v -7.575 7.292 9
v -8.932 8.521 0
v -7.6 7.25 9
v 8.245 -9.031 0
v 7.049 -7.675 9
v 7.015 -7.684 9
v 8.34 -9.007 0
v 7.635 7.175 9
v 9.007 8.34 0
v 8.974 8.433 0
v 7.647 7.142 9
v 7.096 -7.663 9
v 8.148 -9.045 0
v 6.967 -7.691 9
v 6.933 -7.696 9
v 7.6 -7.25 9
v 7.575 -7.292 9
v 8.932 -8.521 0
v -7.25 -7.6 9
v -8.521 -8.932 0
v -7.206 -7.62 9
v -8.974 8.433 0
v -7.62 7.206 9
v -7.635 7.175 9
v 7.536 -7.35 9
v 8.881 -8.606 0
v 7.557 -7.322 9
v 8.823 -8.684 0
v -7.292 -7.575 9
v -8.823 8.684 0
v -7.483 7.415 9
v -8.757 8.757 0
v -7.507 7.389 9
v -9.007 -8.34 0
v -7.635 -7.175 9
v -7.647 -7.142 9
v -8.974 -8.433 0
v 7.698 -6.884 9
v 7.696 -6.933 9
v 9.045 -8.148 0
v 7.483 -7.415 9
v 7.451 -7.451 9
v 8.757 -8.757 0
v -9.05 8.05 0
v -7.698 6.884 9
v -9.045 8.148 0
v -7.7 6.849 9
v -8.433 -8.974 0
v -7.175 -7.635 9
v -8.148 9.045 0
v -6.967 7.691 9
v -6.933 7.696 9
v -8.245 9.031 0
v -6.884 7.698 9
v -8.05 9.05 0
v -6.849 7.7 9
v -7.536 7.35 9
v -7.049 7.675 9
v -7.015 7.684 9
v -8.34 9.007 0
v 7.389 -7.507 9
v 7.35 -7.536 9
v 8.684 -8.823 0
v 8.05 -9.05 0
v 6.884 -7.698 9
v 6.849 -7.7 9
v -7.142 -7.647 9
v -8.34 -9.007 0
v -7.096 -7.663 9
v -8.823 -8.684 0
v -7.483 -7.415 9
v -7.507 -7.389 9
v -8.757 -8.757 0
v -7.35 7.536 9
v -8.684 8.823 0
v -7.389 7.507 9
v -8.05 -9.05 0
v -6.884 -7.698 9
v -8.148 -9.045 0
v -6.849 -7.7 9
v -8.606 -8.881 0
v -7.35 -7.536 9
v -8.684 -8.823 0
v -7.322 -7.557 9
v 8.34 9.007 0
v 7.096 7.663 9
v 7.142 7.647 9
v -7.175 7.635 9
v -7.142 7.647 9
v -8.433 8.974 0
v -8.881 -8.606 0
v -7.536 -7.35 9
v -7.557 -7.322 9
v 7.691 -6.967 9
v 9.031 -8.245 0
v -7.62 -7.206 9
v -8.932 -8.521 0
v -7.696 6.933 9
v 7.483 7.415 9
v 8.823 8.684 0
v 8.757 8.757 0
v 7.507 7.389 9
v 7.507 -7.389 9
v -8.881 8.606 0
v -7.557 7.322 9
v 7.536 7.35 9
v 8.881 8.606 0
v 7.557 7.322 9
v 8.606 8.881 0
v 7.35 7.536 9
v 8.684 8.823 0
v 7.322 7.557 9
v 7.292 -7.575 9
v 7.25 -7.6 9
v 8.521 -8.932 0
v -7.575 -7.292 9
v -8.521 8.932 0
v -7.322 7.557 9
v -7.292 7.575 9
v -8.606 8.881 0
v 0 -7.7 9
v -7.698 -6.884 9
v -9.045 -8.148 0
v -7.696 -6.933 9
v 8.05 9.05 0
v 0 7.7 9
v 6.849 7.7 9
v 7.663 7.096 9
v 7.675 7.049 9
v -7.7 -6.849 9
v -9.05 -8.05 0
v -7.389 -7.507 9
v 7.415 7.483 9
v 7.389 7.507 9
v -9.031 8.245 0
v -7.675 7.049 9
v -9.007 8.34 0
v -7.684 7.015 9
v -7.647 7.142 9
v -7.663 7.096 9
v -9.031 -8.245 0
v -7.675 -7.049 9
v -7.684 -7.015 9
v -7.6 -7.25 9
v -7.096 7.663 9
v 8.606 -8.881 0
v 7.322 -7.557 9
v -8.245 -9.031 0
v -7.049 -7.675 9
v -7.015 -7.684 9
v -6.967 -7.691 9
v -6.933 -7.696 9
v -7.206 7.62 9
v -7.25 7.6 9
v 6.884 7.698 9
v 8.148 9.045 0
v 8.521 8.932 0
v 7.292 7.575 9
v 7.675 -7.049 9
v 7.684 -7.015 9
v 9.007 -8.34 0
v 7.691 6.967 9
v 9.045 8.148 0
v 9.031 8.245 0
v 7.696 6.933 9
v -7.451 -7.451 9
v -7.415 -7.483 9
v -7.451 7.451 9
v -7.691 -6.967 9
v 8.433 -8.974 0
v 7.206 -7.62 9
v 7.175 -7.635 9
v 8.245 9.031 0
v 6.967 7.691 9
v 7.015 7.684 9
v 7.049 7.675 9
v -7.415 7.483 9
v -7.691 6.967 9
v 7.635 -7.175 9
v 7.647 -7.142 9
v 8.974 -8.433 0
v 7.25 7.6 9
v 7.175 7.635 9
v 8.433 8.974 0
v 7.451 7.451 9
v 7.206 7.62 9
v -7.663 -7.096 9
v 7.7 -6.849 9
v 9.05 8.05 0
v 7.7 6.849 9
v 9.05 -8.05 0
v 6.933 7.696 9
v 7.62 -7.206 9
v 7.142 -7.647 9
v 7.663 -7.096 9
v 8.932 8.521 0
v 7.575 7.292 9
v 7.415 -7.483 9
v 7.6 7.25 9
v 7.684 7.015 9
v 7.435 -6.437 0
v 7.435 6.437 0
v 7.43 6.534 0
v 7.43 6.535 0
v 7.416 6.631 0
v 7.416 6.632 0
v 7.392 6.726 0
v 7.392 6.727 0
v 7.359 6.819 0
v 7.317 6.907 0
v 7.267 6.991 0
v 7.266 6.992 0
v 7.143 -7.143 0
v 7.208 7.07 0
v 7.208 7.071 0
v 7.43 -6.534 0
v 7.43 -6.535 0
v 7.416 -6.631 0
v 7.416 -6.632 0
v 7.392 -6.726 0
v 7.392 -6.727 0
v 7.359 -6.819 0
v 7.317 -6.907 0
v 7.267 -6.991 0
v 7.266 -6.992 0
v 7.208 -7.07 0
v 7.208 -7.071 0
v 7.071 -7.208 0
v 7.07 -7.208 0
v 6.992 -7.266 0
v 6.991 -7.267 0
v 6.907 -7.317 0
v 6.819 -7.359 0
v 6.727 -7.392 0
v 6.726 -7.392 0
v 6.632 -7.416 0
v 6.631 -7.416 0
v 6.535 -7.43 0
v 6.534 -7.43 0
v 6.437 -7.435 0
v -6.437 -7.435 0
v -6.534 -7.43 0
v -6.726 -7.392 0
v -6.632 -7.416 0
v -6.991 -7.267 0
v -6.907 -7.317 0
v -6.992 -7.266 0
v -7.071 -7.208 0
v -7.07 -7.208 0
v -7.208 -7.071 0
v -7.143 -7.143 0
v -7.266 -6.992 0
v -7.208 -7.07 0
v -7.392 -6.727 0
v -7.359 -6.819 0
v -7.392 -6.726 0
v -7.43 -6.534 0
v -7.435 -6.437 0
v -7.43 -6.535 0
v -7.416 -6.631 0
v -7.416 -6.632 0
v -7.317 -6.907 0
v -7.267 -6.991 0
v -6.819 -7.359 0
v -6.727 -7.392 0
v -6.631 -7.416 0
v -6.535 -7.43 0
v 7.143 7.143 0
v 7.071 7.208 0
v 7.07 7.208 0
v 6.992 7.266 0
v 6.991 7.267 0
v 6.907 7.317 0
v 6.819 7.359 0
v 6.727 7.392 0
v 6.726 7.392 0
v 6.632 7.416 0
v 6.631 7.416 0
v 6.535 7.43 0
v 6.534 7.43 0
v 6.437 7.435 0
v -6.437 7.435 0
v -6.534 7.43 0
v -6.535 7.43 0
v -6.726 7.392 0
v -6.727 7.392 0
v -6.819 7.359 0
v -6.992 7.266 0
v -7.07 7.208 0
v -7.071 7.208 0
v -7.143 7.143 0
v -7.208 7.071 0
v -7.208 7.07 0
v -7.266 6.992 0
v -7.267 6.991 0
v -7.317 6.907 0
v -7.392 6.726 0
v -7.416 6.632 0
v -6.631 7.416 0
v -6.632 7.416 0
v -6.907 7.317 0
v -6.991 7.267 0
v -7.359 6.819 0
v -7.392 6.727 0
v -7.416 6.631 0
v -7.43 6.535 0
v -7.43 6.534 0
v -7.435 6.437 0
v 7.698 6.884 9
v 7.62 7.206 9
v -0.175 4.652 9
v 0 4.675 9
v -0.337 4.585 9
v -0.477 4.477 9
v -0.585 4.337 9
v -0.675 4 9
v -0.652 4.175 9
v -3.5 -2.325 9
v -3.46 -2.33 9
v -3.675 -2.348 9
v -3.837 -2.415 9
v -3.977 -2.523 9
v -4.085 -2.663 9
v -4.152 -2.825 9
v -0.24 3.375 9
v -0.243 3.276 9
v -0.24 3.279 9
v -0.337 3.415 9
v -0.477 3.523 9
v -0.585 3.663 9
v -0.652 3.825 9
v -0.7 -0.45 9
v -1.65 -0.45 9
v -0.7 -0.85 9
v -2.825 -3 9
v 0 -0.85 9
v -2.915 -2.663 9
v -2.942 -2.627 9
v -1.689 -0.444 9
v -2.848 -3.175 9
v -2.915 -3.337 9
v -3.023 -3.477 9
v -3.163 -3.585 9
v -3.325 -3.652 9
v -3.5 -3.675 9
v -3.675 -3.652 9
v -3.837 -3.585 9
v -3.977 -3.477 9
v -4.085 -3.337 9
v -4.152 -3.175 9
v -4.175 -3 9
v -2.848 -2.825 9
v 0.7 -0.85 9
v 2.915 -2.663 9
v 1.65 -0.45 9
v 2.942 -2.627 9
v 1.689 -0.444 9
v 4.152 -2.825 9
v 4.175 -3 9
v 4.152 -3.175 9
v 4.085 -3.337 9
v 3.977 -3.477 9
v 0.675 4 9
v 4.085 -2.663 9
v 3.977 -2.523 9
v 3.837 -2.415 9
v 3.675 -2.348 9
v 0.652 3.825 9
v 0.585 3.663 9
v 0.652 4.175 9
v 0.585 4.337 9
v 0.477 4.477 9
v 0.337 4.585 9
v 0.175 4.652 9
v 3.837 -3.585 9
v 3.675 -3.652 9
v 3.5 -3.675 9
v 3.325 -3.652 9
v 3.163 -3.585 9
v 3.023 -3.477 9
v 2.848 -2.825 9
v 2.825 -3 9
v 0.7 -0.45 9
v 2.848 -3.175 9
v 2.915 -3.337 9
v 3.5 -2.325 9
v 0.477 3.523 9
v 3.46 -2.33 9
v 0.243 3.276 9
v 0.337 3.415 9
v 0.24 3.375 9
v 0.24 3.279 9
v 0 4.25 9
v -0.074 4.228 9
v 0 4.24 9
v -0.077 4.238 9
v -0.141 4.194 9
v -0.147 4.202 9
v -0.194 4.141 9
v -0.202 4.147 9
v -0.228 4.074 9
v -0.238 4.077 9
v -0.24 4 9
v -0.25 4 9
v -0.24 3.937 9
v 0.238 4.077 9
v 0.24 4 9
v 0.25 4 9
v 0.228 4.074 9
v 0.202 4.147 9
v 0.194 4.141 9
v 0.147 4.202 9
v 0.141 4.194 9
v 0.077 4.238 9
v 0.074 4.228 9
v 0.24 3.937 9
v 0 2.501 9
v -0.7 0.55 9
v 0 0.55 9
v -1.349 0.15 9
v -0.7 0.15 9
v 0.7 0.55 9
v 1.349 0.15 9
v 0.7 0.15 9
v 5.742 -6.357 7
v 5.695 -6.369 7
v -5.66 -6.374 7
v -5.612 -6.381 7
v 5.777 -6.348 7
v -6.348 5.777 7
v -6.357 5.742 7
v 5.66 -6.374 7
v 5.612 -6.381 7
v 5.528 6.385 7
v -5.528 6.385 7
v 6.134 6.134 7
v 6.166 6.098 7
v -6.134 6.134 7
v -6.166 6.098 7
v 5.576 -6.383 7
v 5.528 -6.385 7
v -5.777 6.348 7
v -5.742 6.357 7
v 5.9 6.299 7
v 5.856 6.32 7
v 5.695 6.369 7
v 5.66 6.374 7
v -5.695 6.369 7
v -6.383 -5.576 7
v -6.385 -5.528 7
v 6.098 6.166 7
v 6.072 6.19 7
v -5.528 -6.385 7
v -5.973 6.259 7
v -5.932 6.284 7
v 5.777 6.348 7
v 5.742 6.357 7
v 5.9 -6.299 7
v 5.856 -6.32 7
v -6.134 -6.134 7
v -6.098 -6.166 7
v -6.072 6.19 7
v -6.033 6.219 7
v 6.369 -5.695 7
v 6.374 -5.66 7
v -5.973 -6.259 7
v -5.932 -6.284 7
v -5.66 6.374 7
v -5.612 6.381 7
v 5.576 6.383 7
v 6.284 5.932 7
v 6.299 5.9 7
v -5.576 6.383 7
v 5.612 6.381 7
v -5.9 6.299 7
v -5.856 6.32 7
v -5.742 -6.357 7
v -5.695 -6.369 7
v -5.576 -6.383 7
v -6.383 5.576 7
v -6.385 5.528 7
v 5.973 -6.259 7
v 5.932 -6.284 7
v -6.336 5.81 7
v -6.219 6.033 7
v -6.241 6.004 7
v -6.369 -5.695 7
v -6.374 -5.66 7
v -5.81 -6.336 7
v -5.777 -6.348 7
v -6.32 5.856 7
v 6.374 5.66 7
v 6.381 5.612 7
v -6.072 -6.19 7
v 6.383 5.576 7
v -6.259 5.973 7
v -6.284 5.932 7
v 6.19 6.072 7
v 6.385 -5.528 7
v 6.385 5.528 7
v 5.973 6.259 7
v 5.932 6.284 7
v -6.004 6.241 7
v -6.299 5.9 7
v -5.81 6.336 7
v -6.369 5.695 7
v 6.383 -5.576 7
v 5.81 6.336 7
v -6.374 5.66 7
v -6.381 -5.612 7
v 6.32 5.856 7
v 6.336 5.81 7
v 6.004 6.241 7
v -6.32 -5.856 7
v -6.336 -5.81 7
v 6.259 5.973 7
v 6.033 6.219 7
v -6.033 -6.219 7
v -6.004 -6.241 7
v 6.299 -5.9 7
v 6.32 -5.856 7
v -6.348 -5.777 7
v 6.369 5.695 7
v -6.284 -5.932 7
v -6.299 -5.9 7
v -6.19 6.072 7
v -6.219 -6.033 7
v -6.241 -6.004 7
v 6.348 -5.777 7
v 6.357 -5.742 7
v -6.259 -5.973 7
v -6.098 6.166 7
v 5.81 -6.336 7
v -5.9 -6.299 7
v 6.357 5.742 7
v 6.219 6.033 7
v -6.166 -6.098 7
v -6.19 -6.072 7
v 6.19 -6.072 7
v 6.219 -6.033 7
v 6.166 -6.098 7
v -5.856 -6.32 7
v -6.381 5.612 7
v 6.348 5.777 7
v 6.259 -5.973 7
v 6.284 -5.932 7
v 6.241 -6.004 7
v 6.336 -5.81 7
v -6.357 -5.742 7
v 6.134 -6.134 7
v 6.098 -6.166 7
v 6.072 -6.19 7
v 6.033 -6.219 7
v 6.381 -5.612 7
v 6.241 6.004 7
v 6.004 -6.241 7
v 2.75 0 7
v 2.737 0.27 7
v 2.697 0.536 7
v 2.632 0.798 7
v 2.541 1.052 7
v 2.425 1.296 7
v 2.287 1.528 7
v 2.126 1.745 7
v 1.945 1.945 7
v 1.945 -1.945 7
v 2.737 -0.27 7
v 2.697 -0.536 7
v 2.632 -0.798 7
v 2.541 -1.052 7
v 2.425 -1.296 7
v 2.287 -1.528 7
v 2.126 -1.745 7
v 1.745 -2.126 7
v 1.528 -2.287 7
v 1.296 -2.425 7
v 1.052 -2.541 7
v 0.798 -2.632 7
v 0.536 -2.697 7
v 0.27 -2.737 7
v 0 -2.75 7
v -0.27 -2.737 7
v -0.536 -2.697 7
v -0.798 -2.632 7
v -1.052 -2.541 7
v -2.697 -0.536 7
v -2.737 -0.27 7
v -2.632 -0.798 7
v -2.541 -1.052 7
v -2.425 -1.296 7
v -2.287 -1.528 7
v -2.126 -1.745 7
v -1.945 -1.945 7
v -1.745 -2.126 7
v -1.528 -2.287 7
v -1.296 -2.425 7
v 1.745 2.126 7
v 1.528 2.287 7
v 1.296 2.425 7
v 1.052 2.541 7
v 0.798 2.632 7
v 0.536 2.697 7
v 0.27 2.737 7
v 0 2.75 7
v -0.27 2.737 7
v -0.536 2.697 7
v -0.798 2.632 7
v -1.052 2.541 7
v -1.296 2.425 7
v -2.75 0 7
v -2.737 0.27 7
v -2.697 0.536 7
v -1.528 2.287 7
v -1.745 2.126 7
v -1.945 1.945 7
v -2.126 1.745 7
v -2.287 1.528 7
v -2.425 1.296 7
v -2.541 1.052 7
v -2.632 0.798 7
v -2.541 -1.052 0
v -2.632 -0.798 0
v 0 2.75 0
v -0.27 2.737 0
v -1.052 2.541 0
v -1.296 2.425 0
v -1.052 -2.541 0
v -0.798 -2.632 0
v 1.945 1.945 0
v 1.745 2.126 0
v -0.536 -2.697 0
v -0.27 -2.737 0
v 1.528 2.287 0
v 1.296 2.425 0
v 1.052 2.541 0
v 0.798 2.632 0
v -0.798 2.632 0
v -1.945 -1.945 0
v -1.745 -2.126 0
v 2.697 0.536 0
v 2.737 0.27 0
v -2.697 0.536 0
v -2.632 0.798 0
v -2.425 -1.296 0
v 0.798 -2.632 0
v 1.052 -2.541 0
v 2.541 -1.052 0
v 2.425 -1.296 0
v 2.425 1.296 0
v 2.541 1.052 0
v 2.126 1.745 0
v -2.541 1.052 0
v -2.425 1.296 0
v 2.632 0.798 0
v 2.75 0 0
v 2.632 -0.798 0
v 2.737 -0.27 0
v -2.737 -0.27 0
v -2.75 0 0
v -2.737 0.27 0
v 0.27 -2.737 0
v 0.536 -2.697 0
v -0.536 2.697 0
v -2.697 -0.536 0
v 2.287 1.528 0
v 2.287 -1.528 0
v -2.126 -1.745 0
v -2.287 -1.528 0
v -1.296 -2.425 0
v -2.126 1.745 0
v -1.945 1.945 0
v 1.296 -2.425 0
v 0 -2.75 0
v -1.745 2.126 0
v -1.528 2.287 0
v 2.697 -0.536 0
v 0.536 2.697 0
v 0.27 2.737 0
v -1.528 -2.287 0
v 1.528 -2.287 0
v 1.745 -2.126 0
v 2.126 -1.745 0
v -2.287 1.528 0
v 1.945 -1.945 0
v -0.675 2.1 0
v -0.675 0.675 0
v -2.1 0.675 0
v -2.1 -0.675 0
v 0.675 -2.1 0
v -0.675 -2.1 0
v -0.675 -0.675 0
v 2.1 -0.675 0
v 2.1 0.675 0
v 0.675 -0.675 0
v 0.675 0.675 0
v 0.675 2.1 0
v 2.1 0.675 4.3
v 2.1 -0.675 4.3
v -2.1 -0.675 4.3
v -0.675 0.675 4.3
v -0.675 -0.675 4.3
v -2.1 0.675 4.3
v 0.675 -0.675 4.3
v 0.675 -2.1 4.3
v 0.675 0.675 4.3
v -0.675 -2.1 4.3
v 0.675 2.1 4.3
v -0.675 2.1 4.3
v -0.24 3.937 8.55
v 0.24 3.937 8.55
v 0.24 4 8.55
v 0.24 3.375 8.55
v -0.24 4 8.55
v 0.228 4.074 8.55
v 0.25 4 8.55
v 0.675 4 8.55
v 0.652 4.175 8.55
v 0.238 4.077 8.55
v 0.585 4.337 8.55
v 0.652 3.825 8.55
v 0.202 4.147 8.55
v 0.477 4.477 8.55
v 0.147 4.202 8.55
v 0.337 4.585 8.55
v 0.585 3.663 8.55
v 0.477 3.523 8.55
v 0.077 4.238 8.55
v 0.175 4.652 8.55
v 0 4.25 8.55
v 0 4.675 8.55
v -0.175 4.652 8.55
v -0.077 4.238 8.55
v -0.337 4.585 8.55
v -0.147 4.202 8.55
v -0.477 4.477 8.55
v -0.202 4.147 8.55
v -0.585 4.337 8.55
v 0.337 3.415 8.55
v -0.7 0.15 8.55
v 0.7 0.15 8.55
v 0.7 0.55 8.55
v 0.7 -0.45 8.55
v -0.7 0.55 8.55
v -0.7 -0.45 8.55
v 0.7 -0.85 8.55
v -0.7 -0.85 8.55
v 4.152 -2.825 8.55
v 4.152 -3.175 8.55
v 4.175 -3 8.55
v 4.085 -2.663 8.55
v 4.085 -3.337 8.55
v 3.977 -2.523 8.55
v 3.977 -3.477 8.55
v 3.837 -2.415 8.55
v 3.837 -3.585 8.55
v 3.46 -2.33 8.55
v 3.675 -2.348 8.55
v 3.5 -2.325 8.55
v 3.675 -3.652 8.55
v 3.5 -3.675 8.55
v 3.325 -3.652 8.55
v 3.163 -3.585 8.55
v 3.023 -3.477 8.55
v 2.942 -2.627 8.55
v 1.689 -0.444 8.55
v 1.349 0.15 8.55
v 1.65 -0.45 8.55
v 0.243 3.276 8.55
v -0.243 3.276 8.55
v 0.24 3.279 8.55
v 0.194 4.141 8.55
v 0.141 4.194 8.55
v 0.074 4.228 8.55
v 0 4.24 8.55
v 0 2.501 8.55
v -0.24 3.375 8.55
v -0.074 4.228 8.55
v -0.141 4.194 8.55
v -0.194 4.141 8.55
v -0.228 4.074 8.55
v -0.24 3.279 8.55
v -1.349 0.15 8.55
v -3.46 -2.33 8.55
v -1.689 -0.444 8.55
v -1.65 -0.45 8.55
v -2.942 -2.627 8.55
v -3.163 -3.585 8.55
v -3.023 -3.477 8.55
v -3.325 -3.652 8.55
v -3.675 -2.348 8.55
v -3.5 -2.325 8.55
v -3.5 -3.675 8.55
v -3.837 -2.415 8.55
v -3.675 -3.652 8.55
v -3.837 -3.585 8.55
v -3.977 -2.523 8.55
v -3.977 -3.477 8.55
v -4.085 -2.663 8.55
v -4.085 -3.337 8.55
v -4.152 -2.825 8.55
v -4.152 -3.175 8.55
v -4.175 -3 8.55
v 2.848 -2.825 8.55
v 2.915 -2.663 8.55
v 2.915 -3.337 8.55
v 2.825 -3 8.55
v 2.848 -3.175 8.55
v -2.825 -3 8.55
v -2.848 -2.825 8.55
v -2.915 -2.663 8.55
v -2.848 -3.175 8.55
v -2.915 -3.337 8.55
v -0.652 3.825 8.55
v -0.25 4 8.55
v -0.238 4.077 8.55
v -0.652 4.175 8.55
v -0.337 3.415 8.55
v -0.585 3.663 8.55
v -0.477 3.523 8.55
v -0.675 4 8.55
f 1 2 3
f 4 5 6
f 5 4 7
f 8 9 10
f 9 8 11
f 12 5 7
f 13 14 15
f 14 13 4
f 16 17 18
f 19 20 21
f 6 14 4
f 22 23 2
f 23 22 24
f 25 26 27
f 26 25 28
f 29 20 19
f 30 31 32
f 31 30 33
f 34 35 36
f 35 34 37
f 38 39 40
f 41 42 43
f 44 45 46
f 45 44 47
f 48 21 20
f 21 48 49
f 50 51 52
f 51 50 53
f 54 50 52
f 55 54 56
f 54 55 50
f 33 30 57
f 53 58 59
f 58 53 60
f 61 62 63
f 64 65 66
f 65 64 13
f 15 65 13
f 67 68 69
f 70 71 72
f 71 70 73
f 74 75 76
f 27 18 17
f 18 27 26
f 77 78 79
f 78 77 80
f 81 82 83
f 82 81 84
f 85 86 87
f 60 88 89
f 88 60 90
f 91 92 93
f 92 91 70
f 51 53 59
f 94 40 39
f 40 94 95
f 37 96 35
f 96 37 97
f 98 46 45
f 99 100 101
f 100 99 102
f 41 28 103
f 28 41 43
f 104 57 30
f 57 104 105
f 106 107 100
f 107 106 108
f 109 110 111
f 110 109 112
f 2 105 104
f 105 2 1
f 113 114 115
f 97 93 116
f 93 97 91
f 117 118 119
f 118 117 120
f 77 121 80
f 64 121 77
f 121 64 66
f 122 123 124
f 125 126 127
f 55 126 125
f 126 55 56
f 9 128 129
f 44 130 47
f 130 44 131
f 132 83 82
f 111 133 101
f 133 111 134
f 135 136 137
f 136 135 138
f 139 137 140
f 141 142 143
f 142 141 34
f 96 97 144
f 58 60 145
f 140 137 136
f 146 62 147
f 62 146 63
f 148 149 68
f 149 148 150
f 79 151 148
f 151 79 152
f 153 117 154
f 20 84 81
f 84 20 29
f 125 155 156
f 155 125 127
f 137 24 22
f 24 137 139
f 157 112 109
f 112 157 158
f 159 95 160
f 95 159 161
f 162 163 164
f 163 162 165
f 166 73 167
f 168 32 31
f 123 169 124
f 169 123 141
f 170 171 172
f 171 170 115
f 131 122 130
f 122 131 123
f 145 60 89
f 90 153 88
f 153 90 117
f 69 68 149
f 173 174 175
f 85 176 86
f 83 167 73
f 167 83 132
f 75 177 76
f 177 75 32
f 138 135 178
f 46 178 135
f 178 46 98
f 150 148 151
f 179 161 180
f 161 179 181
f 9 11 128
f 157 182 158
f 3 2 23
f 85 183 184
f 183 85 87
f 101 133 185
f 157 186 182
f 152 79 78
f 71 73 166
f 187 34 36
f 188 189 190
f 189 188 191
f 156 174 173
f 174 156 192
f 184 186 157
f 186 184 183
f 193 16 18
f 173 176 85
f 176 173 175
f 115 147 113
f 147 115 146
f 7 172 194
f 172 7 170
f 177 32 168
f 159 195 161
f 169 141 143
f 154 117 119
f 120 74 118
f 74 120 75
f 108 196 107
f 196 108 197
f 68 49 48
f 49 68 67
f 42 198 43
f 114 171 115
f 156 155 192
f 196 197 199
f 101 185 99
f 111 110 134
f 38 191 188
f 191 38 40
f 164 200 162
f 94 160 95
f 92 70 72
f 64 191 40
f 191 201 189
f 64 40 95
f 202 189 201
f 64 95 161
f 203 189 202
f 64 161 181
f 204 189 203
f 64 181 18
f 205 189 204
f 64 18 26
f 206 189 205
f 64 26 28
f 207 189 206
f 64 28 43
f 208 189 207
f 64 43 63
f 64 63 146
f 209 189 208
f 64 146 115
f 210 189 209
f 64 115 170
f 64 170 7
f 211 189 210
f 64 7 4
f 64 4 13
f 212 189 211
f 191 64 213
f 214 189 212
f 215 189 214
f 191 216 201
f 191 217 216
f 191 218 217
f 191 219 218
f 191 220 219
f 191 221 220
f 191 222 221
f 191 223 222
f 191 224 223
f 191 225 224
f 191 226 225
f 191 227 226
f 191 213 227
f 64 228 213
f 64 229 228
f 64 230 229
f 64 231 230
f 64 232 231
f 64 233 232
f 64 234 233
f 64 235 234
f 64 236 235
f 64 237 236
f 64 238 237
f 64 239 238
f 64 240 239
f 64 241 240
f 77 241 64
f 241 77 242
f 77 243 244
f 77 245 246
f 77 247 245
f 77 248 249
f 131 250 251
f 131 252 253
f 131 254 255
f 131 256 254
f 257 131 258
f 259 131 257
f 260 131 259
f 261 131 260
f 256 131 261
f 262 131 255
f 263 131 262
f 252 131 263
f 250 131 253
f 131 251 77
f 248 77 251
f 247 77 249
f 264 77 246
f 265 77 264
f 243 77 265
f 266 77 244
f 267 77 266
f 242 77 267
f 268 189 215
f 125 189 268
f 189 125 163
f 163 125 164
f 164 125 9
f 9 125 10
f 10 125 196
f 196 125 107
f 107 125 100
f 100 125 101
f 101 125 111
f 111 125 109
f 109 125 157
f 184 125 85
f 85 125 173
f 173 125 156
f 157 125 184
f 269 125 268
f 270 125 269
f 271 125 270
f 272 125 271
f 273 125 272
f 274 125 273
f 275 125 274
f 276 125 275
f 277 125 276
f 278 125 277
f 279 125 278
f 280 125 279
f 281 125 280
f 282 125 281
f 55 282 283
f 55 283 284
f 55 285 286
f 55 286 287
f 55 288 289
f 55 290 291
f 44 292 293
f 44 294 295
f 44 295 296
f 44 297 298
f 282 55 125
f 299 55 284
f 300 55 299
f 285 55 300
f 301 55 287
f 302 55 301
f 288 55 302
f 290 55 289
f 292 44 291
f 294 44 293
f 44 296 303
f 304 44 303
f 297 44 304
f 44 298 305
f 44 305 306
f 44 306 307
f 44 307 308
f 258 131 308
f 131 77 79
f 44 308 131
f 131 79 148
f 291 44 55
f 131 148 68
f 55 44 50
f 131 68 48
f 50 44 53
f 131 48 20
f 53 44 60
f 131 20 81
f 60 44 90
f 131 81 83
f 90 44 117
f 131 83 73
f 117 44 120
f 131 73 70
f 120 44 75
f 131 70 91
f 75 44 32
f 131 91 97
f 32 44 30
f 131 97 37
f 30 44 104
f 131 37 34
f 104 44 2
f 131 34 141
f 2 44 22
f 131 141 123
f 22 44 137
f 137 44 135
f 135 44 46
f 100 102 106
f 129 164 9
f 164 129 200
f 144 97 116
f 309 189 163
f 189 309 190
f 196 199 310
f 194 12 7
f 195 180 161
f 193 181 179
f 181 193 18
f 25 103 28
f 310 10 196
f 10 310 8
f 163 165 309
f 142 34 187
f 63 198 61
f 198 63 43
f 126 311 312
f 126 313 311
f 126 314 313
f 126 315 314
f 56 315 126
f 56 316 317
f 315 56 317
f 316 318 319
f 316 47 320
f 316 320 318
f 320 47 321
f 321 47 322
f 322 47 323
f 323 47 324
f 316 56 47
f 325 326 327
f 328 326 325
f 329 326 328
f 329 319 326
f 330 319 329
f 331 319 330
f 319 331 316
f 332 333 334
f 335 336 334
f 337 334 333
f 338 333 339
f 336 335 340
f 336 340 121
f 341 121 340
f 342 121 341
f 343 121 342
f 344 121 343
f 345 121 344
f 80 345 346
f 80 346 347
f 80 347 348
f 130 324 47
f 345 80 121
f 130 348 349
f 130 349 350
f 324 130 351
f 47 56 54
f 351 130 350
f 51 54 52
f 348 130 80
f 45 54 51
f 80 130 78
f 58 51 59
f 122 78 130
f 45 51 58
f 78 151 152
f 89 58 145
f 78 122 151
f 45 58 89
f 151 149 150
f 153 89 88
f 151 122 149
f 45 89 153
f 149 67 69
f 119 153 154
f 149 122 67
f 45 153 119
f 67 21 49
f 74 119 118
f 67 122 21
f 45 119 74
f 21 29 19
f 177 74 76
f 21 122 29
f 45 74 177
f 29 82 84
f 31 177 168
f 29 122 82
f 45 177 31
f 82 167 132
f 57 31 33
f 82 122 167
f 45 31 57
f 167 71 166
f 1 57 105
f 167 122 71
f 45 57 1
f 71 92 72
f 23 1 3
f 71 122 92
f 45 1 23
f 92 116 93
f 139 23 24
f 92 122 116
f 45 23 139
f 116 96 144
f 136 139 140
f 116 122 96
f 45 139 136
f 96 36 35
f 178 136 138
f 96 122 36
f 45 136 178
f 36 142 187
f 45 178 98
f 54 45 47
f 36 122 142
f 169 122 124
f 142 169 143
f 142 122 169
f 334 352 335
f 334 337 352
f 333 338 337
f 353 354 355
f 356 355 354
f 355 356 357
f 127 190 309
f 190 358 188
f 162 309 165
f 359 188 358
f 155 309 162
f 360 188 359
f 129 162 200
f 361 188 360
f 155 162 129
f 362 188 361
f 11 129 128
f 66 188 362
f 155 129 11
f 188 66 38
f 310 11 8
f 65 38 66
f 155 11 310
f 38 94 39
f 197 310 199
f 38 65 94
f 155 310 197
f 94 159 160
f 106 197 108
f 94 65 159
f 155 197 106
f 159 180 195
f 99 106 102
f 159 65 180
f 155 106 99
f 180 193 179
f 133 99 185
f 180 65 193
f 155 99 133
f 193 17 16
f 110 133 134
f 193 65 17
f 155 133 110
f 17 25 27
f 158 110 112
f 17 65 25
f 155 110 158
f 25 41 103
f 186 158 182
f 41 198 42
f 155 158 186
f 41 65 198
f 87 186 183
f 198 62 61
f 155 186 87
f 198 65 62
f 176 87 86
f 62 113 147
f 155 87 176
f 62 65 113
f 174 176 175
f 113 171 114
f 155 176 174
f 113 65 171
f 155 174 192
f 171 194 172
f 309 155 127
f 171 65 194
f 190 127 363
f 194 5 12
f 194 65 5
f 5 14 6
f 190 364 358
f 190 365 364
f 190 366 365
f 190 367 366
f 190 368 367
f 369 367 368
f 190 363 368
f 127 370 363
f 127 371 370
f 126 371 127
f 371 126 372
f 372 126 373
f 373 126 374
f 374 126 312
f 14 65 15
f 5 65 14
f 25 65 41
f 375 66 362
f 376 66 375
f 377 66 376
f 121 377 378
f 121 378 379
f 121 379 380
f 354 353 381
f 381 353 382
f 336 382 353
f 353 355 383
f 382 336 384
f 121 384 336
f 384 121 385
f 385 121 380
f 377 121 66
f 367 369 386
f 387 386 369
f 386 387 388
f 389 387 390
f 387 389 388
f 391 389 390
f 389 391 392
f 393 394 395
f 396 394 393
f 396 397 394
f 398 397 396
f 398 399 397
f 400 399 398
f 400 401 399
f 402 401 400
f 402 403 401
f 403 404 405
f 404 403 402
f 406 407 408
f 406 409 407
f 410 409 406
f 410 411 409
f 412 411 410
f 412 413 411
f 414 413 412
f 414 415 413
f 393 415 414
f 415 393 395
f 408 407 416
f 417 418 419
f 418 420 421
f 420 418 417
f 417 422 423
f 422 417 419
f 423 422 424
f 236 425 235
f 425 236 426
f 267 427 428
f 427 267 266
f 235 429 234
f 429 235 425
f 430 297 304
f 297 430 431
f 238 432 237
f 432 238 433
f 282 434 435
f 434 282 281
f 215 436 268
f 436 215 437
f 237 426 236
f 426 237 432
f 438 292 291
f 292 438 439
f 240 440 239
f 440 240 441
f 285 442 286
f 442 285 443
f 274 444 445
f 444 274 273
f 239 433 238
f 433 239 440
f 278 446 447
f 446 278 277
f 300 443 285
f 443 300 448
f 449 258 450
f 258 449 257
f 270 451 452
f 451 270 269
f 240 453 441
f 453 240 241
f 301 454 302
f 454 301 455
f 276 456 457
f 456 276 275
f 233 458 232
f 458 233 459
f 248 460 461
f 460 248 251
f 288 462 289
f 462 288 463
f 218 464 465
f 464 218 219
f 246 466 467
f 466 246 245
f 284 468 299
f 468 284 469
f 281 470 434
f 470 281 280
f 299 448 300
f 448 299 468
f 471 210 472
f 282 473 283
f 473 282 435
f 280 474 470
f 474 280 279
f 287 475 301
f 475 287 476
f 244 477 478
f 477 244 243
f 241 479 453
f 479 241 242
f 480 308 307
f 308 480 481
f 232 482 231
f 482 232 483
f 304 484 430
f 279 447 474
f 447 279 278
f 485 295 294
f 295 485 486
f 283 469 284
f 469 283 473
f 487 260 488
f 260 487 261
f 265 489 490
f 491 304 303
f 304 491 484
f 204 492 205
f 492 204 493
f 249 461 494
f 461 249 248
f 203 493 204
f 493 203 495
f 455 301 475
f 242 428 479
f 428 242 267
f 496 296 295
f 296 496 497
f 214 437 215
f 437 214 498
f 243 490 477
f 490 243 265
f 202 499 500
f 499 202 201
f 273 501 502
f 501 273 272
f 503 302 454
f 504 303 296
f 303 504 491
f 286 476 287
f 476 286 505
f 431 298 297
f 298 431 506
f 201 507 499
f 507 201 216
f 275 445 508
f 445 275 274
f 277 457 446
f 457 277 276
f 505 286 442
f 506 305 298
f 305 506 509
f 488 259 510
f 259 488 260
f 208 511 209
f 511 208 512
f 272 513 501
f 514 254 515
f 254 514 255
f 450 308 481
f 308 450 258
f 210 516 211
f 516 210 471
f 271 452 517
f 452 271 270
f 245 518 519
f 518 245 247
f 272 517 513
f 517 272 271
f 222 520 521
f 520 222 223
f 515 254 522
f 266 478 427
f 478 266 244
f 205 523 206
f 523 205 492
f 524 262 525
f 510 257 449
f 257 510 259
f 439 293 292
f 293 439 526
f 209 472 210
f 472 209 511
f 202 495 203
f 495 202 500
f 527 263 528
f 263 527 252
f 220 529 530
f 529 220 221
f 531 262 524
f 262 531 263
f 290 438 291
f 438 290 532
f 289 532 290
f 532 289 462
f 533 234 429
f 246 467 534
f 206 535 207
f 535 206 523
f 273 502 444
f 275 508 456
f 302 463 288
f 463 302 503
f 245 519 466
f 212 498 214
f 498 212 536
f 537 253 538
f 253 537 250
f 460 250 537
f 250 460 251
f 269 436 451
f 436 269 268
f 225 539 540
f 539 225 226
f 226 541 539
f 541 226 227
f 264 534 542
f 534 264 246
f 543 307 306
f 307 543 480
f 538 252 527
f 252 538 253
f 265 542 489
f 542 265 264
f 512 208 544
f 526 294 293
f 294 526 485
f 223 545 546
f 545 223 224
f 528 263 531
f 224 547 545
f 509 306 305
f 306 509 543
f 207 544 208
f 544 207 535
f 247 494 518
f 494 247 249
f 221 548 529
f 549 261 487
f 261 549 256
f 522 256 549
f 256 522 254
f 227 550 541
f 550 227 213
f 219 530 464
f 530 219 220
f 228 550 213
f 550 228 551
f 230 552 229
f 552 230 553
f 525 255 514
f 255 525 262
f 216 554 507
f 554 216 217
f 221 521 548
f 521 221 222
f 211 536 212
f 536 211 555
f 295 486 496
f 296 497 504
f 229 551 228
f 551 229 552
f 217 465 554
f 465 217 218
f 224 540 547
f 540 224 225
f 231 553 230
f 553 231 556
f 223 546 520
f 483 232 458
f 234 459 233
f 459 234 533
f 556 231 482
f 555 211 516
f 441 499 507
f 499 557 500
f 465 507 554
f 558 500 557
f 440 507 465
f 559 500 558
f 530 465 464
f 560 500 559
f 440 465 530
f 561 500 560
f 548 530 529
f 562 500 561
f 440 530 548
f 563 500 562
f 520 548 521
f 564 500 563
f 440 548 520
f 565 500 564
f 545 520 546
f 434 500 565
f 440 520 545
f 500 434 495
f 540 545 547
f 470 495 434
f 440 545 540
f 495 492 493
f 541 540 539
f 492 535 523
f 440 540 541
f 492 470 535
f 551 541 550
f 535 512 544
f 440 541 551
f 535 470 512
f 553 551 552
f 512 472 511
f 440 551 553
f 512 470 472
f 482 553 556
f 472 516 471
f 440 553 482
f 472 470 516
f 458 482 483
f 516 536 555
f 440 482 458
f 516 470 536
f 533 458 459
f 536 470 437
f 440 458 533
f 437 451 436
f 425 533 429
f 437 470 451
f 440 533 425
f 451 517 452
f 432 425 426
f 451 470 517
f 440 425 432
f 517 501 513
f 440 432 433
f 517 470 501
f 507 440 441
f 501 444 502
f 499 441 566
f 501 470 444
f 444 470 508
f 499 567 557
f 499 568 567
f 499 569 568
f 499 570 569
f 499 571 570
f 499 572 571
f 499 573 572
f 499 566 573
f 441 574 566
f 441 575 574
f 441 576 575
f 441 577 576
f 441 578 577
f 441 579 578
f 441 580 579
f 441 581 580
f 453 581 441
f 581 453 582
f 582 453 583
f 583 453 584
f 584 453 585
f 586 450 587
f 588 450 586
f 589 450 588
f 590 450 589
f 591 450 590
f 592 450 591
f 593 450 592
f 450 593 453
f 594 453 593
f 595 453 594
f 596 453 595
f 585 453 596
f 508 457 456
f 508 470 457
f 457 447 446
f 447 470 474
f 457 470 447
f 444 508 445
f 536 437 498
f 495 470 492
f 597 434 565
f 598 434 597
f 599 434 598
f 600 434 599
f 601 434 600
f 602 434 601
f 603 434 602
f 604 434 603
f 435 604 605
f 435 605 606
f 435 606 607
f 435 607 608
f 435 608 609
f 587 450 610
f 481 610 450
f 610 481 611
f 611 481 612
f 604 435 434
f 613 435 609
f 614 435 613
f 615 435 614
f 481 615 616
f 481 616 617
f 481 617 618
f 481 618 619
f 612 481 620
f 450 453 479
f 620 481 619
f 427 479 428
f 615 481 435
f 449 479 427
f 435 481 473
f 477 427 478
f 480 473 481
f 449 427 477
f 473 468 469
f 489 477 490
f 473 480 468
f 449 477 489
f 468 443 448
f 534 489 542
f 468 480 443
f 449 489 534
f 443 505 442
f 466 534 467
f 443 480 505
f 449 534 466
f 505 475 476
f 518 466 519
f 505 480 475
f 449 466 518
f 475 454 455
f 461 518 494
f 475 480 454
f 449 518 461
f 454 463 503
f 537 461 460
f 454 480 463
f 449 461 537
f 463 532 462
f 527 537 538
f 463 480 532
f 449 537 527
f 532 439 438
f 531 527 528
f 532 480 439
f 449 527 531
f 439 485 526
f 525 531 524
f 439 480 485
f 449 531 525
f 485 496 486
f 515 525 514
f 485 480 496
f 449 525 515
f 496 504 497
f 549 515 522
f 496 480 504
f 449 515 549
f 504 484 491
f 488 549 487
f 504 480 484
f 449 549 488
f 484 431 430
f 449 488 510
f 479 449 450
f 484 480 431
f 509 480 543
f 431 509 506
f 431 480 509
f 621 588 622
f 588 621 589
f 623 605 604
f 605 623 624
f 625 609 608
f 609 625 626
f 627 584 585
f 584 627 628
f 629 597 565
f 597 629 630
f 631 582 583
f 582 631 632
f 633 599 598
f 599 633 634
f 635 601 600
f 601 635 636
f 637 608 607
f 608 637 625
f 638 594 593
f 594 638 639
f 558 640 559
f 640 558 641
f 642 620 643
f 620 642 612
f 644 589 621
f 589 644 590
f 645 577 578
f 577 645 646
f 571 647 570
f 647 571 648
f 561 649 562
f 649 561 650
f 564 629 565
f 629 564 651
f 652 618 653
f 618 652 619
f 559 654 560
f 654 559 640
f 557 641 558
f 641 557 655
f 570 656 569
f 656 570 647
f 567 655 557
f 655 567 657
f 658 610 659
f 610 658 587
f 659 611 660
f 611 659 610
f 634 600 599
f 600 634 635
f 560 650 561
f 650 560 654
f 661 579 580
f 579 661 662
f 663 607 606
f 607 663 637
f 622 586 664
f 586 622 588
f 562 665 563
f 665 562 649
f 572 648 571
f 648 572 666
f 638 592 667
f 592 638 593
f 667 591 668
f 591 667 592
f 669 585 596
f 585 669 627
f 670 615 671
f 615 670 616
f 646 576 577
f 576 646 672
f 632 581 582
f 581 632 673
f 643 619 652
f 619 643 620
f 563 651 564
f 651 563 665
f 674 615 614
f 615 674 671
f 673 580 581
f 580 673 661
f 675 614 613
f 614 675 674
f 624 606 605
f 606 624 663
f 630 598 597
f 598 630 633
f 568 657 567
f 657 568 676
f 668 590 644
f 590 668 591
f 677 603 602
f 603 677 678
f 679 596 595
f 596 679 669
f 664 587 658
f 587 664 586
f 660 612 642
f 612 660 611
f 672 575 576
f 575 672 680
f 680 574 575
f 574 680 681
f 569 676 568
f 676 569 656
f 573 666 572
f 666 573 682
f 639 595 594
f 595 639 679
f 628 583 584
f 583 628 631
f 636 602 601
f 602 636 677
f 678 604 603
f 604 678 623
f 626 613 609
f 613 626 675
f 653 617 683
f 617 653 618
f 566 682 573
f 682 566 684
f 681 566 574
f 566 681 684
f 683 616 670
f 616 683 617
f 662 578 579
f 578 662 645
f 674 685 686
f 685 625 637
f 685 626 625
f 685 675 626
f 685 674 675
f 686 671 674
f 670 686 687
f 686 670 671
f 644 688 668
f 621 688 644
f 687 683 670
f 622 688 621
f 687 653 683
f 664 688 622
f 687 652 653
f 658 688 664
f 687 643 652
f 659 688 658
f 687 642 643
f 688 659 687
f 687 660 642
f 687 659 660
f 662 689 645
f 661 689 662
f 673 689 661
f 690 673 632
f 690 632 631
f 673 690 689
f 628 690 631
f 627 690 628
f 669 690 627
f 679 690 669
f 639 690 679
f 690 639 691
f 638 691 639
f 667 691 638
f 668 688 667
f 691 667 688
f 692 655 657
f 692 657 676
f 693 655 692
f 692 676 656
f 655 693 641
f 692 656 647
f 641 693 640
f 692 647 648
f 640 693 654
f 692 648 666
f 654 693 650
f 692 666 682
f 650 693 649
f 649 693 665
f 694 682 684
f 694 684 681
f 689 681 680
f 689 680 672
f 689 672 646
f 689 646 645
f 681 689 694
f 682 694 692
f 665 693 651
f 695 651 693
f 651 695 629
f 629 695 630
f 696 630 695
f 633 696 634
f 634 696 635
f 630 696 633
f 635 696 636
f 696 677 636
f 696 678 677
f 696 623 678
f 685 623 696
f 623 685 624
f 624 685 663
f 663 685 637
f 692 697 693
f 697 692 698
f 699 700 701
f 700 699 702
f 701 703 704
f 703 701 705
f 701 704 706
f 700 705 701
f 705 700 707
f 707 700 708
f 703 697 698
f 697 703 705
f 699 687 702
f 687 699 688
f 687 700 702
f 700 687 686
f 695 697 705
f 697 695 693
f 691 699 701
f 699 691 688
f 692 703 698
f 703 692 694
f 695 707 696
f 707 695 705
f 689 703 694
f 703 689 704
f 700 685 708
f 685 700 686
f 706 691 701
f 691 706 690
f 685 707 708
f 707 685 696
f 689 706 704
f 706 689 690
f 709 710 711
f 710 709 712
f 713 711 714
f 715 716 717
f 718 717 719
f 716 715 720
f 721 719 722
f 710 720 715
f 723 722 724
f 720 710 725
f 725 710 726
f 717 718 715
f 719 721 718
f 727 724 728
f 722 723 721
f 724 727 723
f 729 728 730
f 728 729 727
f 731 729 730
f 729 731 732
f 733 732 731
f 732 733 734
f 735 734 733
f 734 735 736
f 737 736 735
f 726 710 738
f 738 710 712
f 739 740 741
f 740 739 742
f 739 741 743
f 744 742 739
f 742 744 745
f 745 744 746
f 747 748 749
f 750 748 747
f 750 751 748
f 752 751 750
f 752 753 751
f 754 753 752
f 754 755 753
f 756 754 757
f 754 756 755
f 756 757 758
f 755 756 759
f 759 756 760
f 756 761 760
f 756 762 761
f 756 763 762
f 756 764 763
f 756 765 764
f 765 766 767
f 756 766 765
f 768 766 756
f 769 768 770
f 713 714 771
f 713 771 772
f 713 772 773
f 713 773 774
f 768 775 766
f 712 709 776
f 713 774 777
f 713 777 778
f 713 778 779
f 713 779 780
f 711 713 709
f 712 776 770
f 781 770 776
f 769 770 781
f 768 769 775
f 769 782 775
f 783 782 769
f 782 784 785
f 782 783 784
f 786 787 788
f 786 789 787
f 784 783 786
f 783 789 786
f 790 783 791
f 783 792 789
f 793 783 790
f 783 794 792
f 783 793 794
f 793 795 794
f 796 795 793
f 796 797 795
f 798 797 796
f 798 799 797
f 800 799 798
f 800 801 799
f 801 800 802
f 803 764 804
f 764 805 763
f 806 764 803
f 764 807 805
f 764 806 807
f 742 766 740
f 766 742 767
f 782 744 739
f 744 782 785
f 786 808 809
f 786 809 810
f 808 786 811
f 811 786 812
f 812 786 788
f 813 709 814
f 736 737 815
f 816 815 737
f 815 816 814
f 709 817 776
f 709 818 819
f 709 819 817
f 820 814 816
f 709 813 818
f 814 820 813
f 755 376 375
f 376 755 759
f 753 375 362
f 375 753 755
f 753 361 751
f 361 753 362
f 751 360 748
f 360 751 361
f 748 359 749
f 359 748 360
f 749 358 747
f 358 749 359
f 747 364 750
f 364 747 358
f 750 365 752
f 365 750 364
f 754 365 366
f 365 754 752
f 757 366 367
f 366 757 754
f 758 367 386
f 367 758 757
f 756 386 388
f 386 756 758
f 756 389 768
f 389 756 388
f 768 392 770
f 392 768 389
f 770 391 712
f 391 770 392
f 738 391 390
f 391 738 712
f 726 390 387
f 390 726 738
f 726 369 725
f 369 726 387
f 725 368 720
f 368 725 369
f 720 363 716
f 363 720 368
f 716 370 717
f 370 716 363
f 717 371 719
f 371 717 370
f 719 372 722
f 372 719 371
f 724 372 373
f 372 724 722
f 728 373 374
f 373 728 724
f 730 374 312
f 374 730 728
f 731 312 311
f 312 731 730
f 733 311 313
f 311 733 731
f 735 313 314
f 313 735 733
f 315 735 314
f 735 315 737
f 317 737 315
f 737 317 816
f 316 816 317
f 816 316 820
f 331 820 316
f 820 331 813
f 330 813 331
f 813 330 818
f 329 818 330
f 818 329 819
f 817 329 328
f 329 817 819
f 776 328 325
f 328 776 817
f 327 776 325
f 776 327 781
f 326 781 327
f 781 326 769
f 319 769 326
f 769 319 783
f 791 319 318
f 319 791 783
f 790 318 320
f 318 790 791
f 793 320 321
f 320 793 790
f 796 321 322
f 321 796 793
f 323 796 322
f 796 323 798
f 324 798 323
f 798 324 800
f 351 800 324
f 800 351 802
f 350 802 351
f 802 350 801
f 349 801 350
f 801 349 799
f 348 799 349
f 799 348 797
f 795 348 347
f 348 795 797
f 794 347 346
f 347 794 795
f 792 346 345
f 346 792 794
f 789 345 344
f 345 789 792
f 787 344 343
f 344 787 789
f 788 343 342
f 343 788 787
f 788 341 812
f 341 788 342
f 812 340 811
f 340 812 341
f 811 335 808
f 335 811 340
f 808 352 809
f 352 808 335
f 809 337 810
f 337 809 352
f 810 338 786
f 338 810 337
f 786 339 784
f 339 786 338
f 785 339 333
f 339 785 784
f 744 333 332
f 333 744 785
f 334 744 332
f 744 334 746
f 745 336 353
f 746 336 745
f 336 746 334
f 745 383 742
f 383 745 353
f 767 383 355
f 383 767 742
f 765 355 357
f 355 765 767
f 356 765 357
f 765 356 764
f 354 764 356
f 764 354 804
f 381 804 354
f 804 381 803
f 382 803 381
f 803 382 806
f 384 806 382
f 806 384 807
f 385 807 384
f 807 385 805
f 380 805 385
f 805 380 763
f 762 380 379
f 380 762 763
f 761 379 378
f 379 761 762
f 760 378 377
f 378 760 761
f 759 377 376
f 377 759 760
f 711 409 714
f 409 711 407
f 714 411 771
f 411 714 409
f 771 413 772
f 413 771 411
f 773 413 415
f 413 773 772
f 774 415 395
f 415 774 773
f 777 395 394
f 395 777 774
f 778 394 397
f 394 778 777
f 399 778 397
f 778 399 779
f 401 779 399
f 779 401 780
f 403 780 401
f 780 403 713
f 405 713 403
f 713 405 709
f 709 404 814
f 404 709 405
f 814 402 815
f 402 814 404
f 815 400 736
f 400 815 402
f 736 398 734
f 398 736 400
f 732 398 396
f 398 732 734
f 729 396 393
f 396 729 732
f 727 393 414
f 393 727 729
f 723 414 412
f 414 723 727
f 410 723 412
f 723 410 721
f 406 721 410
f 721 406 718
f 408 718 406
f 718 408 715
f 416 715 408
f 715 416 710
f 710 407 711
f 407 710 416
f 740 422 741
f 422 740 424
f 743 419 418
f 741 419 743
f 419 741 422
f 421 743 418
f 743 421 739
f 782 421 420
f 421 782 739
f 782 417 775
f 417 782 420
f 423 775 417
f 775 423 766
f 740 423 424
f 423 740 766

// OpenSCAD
/*
  FDM-friendly 1U keycap for Cherry MX compatible switches.

  Units: millimetres
  Default orientation: switch/stem opening faces down.
  Set `part` to "fit_test" before printing a complete cap for the first time.
*/

part = "keycap"; // [keycap, keyset, fit_test, pattern_2d, keymap_2d]
surface_pattern = "agentpad"; // [agentpad, task, refactor, test, none]
task_number = 1; // [1:6]

// Keycap envelope (1U key pitch is normally 19.05 mm).
bottom_width = 18.1;
bottom_depth = 18.1;
top_width = 15.4;
top_depth = 15.4;
front_height = 9.0;
back_height = 9.0;
corner_radius = 1.00;

// FDM shell. 1.20 mm is three lines with a 0.4 mm nozzle.
wall = 1.60;
roof = 2.00;

// Cherry MX cross socket. Increase clearance if the first fit is too tight.
stem_cross_length = 4.10;
stem_cross_thickness = 1.25;
stem_clearance = 0.05; // snug fit; added to every side
stem_depth = 4.20;
stem_boss_diameter = 5.50;
// Start at the skirt plane so the central boss prints as its own supported
// pillar. At 5.5 mm OD it clears the switch recess while supporting the roof.
stem_boss_bottom = 0.00;

// Flat top for face-down FDM printing and a smooth finger-contact surface.
dish_depth = 0.00;
dish_radius = 45;

// AgentPad top mark: sized for a 0.4 mm nozzle and 0.12-0.16 mm layers.
pattern_depth = 0.45;
pattern_line_width = 0.60;
pattern_pad_diameter = 1.35;
pattern_pad_hole = 0.50;

$fn = 64;

height_mid = (front_height + back_height) / 2;
slope = atan((back_height - front_height) / bottom_depth);

module rounded_rectangle(size_x, size_y, radius) {
    offset(r = radius)
        square([size_x - 2 * radius, size_y - 2 * radius], center = true);
}

// A large tilted half-space whose top follows the desired front/back heights.
module below_top_plane(z_offset = 0) {
    translate([0, 0, height_mid + z_offset])
        rotate([slope, 0, 0])
            translate([0, 0, -50])
                cube([100, 100, 100], center = true);
}

module tapered_blank(width, depth, top_w, top_d, start_z = 0) {
    // Extrapolate the scale because the blank is taller than the clipping plane.
    // This makes `top_w`/`top_d` the dimensions near height_mid, not at z=14.
    scale_x = 1 + (top_w / width - 1) * (14 / height_mid);
    scale_y = 1 + (top_d / depth - 1) * (14 / height_mid);
    translate([0, 0, start_z])
        linear_extrude(height = 14, scale = [scale_x, scale_y])
            rounded_rectangle(width, depth, corner_radius);
}

module outer_body() {
    intersection() {
        tapered_blank(bottom_width, bottom_depth, top_width, top_depth);
        below_top_plane();
    }
}

module inner_void() {
    inner_bottom_w = bottom_width - 2 * wall;
    inner_bottom_d = bottom_depth - 2 * wall;
    inner_top_w = top_width - 2 * wall;
    inner_top_d = top_depth - 2 * wall;

    intersection() {
        tapered_blank(inner_bottom_w, inner_bottom_d,
                      inner_top_w, inner_top_d, -0.10);
        below_top_plane(-roof);
    }
}

module fingertip_dish() {
    // Cylinder axis follows the sloped top from front to back.
    rotate([slope, 0, 0])
        translate([0, 0, height_mid + dish_radius - dish_depth])
            rotate([90, 0, 0])
                cylinder(h = 40, r = dish_radius, center = true);
}

module cross_socket(extra_clearance = stem_clearance) {
    cross_l = stem_cross_length + 2 * extra_clearance;
    cross_t = stem_cross_thickness + 2 * extra_clearance;

    union() {
        translate([-cross_l / 2, -cross_t / 2, 0])
            cube([cross_l, cross_t, stem_depth + 0.20]);
        translate([-cross_t / 2, -cross_l / 2, 0])
            cube([cross_t, cross_l, stem_depth + 0.20]);
    }
}

module stem_boss() {
    boss_height = height_mid - roof - stem_boss_bottom + 0.25;
    translate([0, 0, stem_boss_bottom])
        cylinder(h = boss_height, d = stem_boss_diameter);
}

module trace_2d(point_a, point_b, width = pattern_line_width) {
    hull() {
        translate(point_a) circle(d = width, $fn = 20);
        translate(point_b) circle(d = width, $fn = 20);
    }
}

module circuit_pad_2d(point) {
    translate(point)
        difference() {
            circle(d = pattern_pad_diameter, $fn = 24);
            circle(d = pattern_pad_hole, $fn = 20);
        }
}

module agentpad_pattern_2d() {
    // A monogram drawn as PCB traces. The three hollow circles echo plated
    // pads, while the middle branch suggests an autonomous-agent flow graph.
    trace_2d([-3.5, -3.0], [0, 3.1]);
    trace_2d([0, 3.1], [3.5, -3.0]);
    trace_2d([-1.65, -0.15], [1.65, -0.15]);
    trace_2d([0, 3.1], [0, 4.0], 0.48);

    circuit_pad_2d([-3.5, -3.0]);
    circuit_pad_2d([3.5, -3.0]);
    circuit_pad_2d([0, 4.0]);

    // Small square node mirrors the square switch openings on AgentPad Rev.2.
    translate([-0.70, -0.85])
        difference() {
            square([1.40, 1.40]);
            translate([0.45, 0.45]) square([0.50, 0.50]);
        }
}

module task_pattern_2d(number = 1) {
    // Six numbered rings are the six agent/task status slots in the AgentPad
    // workflow. A small PCB pad at the top preserves the hardware visual theme.
    difference() {
        circle(d = 7.0, $fn = 6);
        circle(d = 5.75, $fn = 6);
    }
    translate([0, 0.05])
        text(str(number), size = 4.3,
             font = "Liberation Sans:style=Bold",
             halign = "center", valign = "center");
    trace_2d([0, 3.0], [0, 4.0], 0.48);
    circuit_pad_2d([0, 4.0]);
}

module arrow_head_2d(point) {
    trace_2d([point[0] - 0.9, point[1] - 0.75], point, 0.55);
    trace_2d([point[0] - 0.9, point[1] + 0.75], point, 0.55);
}

module refactor_pattern_2d() {
    // Git-style split paths: the AgentPad ACT06 / REFACTOR operation.
    trace_2d([-3.6, -2.6], [-1.5, -2.6]);
    trace_2d([-1.5, -2.6], [0.5, -0.5]);
    trace_2d([0.5, -0.5], [3.4, -0.5]);
    trace_2d([-1.5, -2.6], [0.5, 2.25]);
    trace_2d([0.5, 2.25], [3.4, 2.25]);
    circuit_pad_2d([-3.6, -2.6]);
    circuit_pad_2d([-1.5, -2.6]);
    arrow_head_2d([3.4, -0.5]);
    arrow_head_2d([3.4, 2.25]);
}

module test_pattern_2d() {
    // A checked test result: the AgentPad ACT07 / TEST operation.
    difference() {
        offset(r = 0.65) square([6.7, 6.7], center = true);
        offset(r = 0.18) square([5.55, 5.55], center = true);
    }
    trace_2d([-2.25, -0.15], [-0.55, -1.85], 0.72);
    trace_2d([-0.55, -1.85], [2.55, 2.05], 0.72);
}

module selected_pattern_2d(kind = surface_pattern, number = task_number) {
    if (kind == "agentpad") agentpad_pattern_2d();
    else if (kind == "task") task_pattern_2d(number);
    else if (kind == "refactor") refactor_pattern_2d();
    else if (kind == "test") test_pattern_2d();
}

module top_surface_engraving(kind = surface_pattern, number = task_number) {
    // Cut the artwork into the flat face. When printed face-down, this keeps
    // the whole finger-contact plane against the build plate and leaves the
    // legends as shallow recessed marks instead of rough raised features.
    rotate([slope, 0, 0])
        translate([0, 0, height_mid - pattern_depth])
            linear_extrude(height = pattern_depth + 0.20)
                selected_pattern_2d(kind, number);
}

module keycap(kind = surface_pattern, number = task_number) {
    difference() {
        union() {
            difference() {
                outer_body();
                inner_void();
                fingertip_dish();
            }
            stem_boss();
        }

        translate([0, 0, stem_boss_bottom - 0.10])
            cross_socket();
        if (kind != "none") top_surface_engraving(kind, number);
    }
}

module agentpad_keyset() {
    pitch = 21.0;
    // Physical order mirrors AgentPad Rev.2: SW1..SW3, SW4..SW6,
    // SW7..SW8, with the encoder occupying the open bottom-right position.
    translate([-pitch,  pitch, 0]) keycap("task", 1);
    translate([0,       pitch, 0]) keycap("task", 2);
    translate([pitch,   pitch, 0]) keycap("task", 3);
    translate([-pitch,      0, 0]) keycap("task", 4);
    translate([0,           0, 0]) keycap("task", 5);
    translate([pitch,       0, 0]) keycap("task", 6);
    translate([-pitch, -pitch, 0]) keycap("refactor");
    translate([0,      -pitch, 0]) keycap("test");
}

module agentpad_keymap_2d() {
    pitch = 11.5;
    translate([-pitch,  pitch]) task_pattern_2d(1);
    translate([0,       pitch]) task_pattern_2d(2);
    translate([pitch,   pitch]) task_pattern_2d(3);
    translate([-pitch,      0]) task_pattern_2d(4);
    translate([0,           0]) task_pattern_2d(5);
    translate([pitch,       0]) task_pattern_2d(6);
    translate([-pitch, -pitch]) refactor_pattern_2d();
    translate([0,      -pitch]) test_pattern_2d();
    translate([pitch,  -pitch]) {
        difference() {
            circle(d = 7.6);
            circle(d = 5.8);
        }
        translate([0, -5.0])
            text("ENC", size = 1.8, font = "Liberation Sans:style=Bold",
                 halign = "center", valign = "center");
    }
}

module one_fit_socket(clearance, label_text) {
    difference() {
        union() {
            // Match the real keycap boss envelope so the coupon also detects
            // interference with the switch's recessed top housing.
            cylinder(h = 5.0, d = stem_boss_diameter);
            translate([-4.25, -5.25, 0]) cube([8.5, 3.0, 1.0]);
        }
        // Open upward so the coupon prints flat without support. The 0.70 mm
        // floor is thick enough for 4-5 layers at the recommended settings.
        translate([0, 0, 0.70])
            cross_socket(clearance);
    }

    // Raised number is intentionally simple and may be omitted by some slicers.
    translate([0, -4.45, 1.0])
        linear_extrude(0.45)
            text(label_text, size = 1.8, halign = "center", valign = "center");
}

module fit_test() {
    translate([-11, 0, 0]) one_fit_socket(0.00, "00");
    one_fit_socket(0.05, "05");
    translate([11, 0, 0]) one_fit_socket(0.10, "10");
}

if (part == "keycap") {
    keycap();
} else if (part == "keyset") {
    agentpad_keyset();
} else if (part == "fit_test") {
    fit_test();
} else if (part == "keymap_2d") {
    agentpad_keymap_2d();
} else {
    selected_pattern_2d();
}
